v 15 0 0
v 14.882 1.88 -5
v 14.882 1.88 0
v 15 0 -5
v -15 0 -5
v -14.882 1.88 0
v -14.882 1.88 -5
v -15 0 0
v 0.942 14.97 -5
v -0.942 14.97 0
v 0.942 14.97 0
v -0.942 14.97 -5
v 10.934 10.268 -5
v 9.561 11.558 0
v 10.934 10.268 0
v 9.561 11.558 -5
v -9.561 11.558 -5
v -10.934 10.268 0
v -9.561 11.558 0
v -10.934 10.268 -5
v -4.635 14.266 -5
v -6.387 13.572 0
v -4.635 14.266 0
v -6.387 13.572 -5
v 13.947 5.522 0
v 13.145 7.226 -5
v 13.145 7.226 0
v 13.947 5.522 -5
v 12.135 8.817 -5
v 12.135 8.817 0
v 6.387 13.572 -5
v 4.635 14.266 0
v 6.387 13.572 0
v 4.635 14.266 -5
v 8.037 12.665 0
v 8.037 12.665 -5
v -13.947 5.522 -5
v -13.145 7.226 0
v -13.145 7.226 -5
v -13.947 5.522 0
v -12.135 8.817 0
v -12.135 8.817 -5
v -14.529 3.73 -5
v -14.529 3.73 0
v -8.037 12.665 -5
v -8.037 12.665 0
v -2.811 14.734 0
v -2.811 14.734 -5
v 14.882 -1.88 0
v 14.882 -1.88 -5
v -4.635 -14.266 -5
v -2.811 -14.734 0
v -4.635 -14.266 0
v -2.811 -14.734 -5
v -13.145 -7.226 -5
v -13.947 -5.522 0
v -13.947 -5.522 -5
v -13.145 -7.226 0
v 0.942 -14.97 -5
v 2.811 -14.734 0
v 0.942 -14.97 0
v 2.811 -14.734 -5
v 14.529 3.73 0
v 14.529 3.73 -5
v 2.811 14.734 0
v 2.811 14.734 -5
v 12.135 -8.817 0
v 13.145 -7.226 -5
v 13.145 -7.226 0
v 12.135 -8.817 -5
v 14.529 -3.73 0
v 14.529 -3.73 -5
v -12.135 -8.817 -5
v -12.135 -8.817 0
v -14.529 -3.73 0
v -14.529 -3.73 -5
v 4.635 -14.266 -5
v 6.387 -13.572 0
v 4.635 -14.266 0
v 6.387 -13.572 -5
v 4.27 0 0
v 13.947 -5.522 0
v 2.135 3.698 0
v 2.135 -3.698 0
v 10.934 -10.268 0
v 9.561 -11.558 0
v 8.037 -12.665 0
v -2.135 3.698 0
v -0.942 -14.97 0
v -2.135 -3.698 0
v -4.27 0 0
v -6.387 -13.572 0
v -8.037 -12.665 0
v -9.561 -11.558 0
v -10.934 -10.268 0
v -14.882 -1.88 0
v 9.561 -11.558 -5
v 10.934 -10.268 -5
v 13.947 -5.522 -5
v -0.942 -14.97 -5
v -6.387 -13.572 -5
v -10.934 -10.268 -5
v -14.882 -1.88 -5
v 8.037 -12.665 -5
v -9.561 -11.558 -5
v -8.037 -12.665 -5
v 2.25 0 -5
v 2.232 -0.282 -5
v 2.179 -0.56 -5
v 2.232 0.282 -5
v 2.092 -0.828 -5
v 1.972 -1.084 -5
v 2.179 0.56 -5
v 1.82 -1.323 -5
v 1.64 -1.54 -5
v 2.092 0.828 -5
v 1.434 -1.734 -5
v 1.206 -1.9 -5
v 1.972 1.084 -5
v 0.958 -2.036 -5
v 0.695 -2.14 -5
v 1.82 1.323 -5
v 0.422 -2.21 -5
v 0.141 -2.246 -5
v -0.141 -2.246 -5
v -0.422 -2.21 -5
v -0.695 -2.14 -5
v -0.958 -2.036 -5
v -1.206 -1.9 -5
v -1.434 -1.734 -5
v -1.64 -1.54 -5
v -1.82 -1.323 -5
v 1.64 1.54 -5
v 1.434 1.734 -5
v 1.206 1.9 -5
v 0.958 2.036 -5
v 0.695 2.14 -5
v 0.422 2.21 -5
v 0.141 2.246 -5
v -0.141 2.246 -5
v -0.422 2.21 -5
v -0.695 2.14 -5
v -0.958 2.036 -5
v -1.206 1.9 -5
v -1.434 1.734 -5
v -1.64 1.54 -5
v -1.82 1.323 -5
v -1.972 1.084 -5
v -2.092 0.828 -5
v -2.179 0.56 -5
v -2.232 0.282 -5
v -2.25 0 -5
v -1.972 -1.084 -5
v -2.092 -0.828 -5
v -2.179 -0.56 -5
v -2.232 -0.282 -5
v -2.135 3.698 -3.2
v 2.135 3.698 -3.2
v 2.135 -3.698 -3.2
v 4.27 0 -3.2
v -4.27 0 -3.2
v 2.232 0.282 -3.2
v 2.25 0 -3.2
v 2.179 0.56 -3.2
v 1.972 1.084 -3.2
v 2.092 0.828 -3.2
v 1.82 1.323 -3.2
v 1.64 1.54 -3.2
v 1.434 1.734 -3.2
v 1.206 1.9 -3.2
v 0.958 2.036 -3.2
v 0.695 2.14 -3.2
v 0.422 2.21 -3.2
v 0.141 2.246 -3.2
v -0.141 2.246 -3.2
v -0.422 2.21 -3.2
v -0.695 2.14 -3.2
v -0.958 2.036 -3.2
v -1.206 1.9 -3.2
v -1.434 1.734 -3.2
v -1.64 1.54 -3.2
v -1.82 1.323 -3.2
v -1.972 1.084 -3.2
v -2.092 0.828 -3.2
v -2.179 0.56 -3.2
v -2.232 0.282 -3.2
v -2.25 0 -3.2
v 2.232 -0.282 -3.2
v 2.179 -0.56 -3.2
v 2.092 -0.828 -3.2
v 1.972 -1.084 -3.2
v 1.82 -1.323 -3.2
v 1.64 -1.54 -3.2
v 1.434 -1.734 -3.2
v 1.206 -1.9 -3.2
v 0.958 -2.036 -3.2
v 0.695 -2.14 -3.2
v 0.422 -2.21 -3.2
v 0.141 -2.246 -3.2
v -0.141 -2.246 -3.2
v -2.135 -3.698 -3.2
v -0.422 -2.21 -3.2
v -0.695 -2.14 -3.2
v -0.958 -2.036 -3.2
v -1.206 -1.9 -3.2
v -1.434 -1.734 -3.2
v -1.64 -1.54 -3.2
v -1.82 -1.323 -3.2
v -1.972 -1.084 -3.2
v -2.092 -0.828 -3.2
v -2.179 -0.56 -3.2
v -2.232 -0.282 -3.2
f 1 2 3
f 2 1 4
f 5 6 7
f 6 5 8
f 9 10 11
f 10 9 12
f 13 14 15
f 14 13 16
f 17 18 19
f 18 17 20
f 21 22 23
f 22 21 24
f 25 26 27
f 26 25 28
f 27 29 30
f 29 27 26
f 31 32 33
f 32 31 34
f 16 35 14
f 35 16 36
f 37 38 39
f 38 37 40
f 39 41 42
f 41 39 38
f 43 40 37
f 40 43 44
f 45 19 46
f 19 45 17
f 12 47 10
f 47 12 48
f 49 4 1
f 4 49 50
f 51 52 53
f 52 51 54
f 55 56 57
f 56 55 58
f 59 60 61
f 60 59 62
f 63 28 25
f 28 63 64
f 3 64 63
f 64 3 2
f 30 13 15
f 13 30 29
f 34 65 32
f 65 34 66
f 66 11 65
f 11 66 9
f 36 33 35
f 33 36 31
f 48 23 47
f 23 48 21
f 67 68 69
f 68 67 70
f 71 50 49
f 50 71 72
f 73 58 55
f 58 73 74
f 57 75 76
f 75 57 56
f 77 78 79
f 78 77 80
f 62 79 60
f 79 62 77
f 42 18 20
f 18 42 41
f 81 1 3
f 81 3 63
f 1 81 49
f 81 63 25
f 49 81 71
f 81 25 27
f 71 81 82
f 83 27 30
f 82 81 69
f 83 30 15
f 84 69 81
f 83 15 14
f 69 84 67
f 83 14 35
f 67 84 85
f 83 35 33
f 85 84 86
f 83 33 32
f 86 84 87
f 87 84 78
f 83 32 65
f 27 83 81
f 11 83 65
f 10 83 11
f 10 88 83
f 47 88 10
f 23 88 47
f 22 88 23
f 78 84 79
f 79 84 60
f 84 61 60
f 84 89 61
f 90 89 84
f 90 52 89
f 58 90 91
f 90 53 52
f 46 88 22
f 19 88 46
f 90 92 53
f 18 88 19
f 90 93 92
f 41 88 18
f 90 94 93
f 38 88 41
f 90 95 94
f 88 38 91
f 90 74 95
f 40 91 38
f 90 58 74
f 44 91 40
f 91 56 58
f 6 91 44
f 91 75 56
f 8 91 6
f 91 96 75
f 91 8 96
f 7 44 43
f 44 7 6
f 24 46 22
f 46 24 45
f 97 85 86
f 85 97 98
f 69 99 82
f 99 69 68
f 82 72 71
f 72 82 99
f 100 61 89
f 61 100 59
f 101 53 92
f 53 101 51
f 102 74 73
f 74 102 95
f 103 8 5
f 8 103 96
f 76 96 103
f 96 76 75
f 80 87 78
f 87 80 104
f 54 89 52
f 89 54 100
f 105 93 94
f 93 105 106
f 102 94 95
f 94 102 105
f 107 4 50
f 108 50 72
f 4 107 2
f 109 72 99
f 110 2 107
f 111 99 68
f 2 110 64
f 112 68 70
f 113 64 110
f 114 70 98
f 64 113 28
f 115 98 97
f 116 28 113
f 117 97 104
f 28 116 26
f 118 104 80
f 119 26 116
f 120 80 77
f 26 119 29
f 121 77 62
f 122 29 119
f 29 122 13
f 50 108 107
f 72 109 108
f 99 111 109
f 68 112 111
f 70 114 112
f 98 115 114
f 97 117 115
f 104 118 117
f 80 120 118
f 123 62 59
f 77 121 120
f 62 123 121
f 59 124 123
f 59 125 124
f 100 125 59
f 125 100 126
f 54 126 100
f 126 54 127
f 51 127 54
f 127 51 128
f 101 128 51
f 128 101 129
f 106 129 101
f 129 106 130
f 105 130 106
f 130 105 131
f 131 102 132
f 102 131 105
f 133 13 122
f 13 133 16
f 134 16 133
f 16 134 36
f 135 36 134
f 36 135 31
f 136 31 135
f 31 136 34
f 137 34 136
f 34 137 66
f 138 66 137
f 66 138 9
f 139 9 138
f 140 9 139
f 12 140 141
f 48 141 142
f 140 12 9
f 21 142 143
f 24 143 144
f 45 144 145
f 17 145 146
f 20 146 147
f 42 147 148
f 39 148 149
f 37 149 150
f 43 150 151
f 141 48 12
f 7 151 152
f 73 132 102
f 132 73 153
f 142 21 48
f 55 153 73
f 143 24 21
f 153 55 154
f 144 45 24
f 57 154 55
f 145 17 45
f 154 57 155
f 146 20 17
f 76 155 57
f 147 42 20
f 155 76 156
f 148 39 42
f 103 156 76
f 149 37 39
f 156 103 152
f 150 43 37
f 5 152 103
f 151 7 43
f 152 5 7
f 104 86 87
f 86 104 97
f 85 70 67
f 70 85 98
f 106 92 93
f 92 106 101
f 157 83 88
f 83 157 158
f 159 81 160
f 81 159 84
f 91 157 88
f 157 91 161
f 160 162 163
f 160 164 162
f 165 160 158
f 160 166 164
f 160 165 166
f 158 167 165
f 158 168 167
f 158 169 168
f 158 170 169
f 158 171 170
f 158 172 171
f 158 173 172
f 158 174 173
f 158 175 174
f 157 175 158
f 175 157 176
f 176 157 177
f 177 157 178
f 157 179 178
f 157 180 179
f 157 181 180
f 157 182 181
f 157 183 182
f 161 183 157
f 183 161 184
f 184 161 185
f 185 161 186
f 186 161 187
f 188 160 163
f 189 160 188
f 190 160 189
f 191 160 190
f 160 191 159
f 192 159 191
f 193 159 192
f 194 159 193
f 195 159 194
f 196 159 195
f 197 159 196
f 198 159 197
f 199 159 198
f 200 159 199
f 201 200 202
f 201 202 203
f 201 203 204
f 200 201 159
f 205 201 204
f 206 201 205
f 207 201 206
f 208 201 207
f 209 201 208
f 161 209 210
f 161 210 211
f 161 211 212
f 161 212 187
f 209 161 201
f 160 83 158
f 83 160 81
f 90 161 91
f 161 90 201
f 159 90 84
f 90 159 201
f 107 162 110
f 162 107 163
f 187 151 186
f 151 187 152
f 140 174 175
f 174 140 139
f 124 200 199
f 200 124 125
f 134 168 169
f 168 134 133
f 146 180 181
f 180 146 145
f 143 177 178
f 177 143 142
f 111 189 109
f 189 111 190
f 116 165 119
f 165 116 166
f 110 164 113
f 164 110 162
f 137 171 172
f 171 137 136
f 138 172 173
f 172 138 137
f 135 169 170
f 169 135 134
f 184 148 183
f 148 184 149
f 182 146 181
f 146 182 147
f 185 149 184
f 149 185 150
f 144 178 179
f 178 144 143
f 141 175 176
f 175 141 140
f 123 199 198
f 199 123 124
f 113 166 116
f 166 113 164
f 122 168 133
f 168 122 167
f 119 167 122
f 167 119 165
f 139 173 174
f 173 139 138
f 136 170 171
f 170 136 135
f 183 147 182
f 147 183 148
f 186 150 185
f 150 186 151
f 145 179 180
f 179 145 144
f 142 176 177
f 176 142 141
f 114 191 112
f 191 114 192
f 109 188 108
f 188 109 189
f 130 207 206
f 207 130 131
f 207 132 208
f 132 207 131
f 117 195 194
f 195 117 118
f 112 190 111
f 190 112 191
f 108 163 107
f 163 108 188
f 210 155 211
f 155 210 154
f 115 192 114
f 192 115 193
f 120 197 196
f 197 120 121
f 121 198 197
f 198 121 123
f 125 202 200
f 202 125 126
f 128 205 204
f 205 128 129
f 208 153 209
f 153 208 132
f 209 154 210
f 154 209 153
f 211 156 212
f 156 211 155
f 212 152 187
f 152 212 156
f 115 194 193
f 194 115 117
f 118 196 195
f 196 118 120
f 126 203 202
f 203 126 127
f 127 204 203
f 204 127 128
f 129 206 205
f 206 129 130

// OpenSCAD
$fn = 50;


difference() {
	union() {
		translate(v = [0, 0, -5.0000000000]) {
			cylinder(h = 5.0000000000, r = 15.0000000000);
		}
		translate(v = [0, 0, -3.5000000000]) {
			cylinder(h = 3.5000000000, r = 2.8750000000);
		}
	}
	union() {
		translate(v = [0, 0, 0]) {
			rotate(a = [0, 0, 0]) {
				difference() {
					union() {
						translate(v = [0, 0, -3.2000000000]) {
							#linear_extrude(height = 3.2000000000) {
								polygon(points = [[4.2698000000, 0.0000000000], [2.1349000000, 3.6977552691], [-2.1349000000, 3.6977552691], [-4.2698000000, 0.0000000000], [-2.1349000000, -3.6977552691], [2.1349000000, -3.6977552691]]);
							}
						}
					}
					union();
				}
			}
		}
		#translate(v = [0, 0, -100.0000000000]) {
			cylinder(h = 200, r = 2.2500000000);
		}
	}
}
